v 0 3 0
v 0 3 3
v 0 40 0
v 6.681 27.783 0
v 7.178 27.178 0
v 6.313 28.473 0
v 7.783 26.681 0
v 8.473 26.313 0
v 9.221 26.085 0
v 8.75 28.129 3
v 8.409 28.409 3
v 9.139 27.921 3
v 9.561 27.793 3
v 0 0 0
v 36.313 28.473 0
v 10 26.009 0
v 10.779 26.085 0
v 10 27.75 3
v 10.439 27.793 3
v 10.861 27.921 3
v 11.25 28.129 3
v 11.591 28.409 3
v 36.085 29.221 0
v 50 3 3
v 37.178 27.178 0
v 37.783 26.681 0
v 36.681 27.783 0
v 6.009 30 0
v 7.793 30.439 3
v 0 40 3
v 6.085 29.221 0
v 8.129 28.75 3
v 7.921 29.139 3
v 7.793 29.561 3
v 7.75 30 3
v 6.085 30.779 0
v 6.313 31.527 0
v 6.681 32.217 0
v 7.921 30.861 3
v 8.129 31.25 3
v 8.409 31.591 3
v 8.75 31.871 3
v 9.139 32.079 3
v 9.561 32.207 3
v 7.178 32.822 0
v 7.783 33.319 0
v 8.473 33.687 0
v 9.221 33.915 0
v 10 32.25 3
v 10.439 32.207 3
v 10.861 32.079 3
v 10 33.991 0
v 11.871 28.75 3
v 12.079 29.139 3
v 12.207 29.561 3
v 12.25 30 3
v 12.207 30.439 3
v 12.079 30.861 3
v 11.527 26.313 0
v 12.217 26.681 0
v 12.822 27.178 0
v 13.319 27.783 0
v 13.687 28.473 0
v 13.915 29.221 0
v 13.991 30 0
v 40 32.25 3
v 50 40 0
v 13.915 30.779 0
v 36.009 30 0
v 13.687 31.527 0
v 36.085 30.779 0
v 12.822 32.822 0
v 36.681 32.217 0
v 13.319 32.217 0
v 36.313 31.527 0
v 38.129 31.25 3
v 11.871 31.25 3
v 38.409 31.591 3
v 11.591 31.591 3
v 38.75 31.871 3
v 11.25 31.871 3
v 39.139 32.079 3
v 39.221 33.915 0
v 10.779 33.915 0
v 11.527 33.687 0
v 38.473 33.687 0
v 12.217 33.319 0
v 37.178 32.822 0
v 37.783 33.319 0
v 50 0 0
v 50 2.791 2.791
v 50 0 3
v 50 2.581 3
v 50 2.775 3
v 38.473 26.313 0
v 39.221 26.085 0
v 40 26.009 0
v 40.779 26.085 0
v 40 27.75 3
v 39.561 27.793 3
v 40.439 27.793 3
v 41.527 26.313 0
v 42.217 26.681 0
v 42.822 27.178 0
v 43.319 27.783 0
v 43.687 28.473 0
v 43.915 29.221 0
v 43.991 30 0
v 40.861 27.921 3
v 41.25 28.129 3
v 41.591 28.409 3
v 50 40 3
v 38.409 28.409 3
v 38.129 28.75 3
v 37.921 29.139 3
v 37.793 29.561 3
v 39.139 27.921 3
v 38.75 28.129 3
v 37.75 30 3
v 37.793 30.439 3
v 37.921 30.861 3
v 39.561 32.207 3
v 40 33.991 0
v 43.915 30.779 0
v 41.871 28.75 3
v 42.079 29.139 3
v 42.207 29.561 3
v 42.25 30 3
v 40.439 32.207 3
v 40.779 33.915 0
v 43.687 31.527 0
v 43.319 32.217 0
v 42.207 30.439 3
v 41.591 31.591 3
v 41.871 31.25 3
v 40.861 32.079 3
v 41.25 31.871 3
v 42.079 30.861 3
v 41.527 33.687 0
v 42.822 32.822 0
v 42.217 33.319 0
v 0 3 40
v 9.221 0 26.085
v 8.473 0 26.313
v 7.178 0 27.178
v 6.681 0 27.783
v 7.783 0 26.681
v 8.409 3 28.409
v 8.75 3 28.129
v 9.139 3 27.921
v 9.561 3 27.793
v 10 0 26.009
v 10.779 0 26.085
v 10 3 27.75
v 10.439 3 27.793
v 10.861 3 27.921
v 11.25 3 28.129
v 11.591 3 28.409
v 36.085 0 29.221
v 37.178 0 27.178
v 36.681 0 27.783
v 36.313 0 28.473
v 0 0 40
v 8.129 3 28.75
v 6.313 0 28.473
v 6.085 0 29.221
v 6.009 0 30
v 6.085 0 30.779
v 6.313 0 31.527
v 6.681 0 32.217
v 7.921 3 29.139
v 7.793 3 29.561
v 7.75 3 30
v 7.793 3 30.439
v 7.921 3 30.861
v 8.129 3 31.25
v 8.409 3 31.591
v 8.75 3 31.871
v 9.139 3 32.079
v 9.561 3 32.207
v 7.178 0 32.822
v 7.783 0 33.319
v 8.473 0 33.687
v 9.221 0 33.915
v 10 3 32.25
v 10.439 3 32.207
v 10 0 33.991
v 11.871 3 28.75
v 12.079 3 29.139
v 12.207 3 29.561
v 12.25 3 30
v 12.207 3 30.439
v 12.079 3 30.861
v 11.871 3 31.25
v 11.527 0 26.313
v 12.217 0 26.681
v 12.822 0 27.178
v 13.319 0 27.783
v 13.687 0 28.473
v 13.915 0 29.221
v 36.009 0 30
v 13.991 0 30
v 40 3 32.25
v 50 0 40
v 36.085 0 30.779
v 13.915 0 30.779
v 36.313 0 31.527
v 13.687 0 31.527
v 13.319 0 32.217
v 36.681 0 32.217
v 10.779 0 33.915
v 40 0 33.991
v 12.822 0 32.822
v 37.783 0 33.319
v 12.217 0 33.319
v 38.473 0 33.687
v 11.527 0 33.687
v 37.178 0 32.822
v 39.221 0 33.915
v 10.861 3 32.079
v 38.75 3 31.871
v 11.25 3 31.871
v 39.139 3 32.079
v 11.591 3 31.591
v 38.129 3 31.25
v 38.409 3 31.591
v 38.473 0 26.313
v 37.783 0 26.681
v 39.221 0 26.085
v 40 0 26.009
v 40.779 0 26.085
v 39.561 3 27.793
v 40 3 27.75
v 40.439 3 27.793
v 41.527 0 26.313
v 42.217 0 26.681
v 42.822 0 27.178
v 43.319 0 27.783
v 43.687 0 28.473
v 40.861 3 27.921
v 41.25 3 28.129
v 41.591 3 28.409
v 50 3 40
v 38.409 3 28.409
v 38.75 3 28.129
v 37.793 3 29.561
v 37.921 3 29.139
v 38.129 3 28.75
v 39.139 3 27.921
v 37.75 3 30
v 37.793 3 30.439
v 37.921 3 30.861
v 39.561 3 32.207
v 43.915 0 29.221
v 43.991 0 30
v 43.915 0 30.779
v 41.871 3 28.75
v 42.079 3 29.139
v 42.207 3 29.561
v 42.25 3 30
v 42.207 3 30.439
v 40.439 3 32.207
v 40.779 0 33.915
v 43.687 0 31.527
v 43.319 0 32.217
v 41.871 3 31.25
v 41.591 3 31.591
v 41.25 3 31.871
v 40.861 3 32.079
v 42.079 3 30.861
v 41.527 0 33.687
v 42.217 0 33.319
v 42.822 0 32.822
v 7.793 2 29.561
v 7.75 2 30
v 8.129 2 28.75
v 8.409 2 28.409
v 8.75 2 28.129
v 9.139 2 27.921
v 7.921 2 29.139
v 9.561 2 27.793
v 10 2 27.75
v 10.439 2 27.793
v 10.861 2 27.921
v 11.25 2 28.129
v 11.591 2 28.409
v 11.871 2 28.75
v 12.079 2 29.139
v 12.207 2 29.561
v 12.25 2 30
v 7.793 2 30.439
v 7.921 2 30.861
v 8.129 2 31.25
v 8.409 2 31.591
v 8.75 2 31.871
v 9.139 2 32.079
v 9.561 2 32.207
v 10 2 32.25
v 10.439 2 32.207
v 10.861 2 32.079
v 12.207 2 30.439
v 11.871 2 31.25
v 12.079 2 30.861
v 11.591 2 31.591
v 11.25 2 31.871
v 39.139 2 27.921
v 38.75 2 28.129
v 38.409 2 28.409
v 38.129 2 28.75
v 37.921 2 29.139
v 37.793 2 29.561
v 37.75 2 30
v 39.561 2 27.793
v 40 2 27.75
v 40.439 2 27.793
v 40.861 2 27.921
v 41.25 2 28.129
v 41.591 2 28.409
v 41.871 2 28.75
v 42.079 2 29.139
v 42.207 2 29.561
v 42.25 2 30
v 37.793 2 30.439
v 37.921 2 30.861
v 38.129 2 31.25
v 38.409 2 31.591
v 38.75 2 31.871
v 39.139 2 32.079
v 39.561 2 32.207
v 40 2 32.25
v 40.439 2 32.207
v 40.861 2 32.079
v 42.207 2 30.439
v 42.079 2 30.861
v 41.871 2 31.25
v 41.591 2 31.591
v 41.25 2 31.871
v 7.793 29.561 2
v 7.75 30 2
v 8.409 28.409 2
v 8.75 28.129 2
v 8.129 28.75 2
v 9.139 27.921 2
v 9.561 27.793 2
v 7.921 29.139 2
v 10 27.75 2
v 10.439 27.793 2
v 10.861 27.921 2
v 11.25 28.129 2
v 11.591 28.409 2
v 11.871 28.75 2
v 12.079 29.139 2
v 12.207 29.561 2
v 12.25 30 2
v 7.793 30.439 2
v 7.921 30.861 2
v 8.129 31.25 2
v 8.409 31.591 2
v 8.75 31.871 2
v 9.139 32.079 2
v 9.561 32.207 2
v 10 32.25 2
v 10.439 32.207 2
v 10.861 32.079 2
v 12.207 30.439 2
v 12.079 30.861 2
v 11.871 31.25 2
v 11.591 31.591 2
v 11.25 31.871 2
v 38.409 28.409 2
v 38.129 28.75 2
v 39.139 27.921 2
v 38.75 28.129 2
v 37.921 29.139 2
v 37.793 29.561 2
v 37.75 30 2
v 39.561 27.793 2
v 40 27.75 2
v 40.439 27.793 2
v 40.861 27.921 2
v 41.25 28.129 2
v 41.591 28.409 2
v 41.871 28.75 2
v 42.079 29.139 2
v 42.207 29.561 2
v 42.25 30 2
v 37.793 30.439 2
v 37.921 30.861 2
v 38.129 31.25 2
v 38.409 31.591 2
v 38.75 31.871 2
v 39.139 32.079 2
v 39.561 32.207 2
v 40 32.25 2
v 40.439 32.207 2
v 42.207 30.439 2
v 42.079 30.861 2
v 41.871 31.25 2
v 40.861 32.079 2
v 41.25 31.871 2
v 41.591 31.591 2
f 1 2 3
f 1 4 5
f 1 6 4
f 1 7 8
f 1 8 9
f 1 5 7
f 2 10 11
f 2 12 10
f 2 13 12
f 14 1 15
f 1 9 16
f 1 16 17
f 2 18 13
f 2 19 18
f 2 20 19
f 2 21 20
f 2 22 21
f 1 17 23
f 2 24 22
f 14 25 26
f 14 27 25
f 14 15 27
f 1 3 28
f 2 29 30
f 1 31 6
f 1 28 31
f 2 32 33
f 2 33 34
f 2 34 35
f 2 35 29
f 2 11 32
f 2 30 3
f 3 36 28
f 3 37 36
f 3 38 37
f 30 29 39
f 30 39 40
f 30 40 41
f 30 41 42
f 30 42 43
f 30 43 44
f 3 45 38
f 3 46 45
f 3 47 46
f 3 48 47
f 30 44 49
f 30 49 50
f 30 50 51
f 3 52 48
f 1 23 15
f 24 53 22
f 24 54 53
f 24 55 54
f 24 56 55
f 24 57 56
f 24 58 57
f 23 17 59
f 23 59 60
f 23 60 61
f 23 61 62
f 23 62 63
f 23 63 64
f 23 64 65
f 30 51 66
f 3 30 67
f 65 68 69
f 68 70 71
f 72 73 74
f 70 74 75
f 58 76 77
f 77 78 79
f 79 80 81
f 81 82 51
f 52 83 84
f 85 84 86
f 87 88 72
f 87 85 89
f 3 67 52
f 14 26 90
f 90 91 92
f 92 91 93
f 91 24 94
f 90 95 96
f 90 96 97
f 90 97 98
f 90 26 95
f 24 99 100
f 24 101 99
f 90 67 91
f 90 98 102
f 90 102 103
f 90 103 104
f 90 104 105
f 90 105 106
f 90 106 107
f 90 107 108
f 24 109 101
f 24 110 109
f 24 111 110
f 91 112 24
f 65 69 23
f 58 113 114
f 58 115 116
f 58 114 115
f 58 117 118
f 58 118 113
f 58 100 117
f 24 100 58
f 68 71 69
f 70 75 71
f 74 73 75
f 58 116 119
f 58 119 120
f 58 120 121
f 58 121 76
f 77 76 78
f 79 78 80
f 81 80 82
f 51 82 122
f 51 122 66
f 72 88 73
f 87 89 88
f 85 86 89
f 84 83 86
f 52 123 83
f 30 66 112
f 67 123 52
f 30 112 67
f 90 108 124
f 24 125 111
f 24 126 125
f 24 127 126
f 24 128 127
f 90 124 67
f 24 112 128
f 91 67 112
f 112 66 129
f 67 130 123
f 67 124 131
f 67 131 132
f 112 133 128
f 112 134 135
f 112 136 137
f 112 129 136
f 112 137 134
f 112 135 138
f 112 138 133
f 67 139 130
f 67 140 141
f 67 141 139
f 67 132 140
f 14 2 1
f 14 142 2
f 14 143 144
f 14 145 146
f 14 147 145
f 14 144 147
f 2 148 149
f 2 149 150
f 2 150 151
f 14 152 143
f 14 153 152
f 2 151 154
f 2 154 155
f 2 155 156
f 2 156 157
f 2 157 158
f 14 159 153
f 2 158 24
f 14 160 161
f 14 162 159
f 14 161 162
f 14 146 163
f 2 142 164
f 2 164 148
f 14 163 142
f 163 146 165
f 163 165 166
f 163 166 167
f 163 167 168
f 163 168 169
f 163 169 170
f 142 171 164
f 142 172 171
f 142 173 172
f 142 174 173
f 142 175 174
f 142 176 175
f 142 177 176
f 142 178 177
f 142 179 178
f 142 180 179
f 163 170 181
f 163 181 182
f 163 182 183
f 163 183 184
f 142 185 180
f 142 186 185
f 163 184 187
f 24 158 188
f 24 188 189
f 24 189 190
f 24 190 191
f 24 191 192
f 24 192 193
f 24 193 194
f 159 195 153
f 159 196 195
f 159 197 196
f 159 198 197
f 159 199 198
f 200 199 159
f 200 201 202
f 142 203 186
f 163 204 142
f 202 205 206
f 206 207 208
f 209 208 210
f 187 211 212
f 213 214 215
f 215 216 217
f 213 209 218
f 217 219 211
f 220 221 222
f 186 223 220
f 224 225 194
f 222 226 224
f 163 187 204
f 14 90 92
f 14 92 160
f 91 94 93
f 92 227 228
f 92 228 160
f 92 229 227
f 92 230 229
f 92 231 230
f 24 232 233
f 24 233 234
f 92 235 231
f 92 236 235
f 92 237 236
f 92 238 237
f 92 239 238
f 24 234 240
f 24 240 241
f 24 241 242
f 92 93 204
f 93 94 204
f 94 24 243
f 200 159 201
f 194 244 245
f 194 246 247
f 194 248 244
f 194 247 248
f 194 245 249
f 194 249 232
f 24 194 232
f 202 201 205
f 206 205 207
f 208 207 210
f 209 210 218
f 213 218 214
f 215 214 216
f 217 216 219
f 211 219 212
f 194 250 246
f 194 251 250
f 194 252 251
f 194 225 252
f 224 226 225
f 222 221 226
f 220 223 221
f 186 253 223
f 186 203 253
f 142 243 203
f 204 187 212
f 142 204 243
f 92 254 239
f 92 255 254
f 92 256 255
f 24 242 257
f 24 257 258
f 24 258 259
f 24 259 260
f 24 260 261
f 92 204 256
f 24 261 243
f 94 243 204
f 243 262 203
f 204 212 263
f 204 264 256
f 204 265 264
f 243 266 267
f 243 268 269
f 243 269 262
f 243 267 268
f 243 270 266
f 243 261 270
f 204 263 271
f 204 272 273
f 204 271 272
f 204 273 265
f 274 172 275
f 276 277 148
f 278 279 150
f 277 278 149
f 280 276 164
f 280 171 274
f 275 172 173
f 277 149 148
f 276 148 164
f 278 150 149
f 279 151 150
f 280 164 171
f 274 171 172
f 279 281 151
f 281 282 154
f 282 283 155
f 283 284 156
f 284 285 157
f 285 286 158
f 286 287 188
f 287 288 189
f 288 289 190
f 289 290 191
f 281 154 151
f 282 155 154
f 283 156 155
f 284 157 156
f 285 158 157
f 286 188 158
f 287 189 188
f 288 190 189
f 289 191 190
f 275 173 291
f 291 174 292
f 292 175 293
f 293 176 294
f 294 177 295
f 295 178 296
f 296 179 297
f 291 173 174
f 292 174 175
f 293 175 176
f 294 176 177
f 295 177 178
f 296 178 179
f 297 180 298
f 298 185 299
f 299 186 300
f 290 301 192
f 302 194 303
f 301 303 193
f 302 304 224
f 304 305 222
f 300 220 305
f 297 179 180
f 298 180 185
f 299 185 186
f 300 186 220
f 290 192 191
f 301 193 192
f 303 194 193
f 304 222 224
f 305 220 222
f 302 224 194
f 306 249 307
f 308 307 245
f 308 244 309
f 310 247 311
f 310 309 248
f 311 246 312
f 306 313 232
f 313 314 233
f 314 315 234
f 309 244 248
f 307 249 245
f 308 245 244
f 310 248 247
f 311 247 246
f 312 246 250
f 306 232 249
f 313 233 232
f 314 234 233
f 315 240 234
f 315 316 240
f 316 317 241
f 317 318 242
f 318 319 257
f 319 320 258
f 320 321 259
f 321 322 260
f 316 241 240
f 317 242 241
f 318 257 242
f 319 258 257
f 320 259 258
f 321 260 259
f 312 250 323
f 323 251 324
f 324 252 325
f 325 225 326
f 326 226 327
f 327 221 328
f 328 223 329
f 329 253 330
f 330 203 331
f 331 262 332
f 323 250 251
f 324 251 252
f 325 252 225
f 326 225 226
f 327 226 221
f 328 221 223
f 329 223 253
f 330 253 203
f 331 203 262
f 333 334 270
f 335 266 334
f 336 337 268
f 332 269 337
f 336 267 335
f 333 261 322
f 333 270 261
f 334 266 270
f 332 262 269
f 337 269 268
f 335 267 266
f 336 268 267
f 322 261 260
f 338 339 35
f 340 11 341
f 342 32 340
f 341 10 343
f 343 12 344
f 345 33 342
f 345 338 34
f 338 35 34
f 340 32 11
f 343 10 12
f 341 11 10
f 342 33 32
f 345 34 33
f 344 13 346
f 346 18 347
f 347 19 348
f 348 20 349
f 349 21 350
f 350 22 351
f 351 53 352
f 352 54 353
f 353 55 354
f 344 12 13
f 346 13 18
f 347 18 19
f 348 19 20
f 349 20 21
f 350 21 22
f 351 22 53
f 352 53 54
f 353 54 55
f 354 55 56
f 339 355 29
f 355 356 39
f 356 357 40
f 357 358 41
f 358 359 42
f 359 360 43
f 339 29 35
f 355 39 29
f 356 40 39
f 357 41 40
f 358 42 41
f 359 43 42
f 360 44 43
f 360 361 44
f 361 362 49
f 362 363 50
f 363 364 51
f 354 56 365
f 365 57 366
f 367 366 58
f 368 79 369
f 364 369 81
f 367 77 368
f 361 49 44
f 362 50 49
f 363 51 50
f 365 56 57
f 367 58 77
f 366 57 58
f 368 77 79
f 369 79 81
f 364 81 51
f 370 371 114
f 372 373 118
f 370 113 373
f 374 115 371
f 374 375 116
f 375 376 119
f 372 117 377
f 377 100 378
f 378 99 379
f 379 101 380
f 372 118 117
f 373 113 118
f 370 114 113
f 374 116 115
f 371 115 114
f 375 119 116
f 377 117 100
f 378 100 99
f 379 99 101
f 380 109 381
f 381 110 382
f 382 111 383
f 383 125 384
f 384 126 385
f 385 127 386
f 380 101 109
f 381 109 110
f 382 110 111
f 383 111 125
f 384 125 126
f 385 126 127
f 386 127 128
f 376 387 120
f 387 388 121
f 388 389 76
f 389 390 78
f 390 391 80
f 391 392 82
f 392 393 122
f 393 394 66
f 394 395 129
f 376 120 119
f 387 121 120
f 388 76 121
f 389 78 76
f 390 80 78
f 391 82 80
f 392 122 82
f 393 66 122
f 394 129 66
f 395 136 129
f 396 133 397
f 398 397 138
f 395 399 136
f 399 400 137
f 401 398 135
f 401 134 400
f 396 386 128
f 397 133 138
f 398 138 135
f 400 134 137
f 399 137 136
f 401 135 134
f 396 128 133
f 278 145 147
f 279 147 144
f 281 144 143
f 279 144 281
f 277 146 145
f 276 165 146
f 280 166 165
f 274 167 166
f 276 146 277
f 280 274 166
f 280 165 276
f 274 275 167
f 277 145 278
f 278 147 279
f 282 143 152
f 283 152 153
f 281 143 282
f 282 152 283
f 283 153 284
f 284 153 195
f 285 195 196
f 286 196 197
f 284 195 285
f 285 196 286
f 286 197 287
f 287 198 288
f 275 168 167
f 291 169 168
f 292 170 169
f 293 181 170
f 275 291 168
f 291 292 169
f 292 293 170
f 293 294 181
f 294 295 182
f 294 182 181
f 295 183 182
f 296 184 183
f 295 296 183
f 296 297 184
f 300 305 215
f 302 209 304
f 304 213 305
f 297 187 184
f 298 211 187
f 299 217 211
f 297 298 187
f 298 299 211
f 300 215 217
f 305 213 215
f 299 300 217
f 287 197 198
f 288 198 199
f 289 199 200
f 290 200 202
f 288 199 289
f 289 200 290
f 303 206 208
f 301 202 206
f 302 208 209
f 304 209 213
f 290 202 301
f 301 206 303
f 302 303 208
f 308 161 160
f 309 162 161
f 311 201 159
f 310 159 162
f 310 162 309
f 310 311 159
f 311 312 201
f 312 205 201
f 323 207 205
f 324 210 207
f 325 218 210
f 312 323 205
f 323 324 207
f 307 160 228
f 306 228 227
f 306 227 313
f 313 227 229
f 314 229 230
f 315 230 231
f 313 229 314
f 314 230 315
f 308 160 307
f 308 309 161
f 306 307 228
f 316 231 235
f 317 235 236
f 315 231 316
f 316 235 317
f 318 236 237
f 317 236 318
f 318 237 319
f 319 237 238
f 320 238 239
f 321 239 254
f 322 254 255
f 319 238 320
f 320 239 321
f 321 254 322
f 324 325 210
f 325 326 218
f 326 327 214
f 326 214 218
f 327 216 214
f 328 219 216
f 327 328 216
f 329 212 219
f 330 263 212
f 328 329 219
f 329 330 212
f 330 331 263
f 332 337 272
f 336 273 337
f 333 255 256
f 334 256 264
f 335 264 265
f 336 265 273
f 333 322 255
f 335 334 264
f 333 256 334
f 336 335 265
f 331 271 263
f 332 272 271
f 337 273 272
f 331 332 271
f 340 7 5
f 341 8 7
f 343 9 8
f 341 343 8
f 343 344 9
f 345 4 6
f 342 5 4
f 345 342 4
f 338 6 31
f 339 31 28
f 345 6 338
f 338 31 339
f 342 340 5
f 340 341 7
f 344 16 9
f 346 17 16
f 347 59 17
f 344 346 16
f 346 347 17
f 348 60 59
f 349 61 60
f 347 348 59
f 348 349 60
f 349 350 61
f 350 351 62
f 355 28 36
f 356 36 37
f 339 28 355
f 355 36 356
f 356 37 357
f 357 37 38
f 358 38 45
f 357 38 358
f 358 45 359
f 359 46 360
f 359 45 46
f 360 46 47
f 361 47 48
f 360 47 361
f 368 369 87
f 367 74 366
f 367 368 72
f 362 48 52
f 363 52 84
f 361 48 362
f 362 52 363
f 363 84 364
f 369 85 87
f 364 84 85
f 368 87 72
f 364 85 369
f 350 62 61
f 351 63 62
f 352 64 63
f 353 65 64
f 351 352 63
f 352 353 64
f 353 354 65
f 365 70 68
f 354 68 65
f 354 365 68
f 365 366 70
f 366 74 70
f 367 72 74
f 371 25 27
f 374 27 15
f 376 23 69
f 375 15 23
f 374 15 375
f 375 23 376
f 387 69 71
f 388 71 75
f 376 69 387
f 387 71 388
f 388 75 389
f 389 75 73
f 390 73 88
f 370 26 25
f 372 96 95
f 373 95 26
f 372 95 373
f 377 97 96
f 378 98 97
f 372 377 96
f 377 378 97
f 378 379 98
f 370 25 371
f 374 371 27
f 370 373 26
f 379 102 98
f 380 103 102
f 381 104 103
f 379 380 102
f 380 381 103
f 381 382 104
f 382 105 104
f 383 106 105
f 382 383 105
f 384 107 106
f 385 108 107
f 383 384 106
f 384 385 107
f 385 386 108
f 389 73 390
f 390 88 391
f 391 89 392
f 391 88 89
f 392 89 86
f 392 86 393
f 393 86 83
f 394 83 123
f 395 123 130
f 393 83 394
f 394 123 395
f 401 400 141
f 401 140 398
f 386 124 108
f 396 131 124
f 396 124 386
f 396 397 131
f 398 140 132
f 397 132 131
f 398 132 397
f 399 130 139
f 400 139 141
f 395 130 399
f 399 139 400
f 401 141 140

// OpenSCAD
// L-bracket with countersunk holes

// Parameters
flange_width = 50;      // X direction
flange_depth = 40;      // Y direction for horizontal, Z direction for vertical
thickness = 3;

// Countersunk hole parameters
hole_diameter = 4.5;    // M4 through hole
countersink_diameter = 8;
countersink_depth = 2;
edge_distance = 10;     // Distance from edge to hole center

// Module for countersunk hole
module countersunk_hole(h) {
    union() {
        // Through hole
        cylinder(h = h + 1, d = hole_diameter, center = true, $fn = 32);
        // Countersink (cone) at top
        translate([0, 0, h/2 - countersink_depth])
            cylinder(h = countersink_depth + 0.01, d1 = hole_diameter, d2 = countersink_diameter, $fn = 32);
    }
}

// Hole X positions (symmetric about center line, 10mm from left and right edges)
hole_x_positions = [edge_distance, flange_width - edge_distance];

difference() {
    union() {
        // Horizontal flange: inner surface at Z=thickness, outer surface at Z=0
        // Extends in +Y direction from origin
        cube([flange_width, flange_depth, thickness]);
        
        // Vertical flange: inner surface at Y=thickness, outer surface at Y=0
        // Extends in +Z direction from origin
        cube([flange_width, thickness, flange_depth]);
    }
    
    // Countersunk holes on horizontal flange
    // Holes centered at Y = flange_depth - edge_distance (10mm from far edge)
    // Countersink on bottom (Z=0 side, outside where bolt head sits)
    for (x = hole_x_positions) {
        translate([x, flange_depth - edge_distance, thickness/2])
            rotate([180, 0, 0])
                countersunk_hole(thickness);
    }
    
    // Countersunk holes on vertical flange
    // Holes centered at Z = flange_depth - edge_distance (10mm from top edge)
    // Countersink on front (Y=0 side, outside where bolt head sits)
    for (x = hole_x_positions) {
        translate([x, thickness/2, flange_depth - edge_distance])
            rotate([90, 0, 0])
                countersunk_hole(thickness);
    }
}
